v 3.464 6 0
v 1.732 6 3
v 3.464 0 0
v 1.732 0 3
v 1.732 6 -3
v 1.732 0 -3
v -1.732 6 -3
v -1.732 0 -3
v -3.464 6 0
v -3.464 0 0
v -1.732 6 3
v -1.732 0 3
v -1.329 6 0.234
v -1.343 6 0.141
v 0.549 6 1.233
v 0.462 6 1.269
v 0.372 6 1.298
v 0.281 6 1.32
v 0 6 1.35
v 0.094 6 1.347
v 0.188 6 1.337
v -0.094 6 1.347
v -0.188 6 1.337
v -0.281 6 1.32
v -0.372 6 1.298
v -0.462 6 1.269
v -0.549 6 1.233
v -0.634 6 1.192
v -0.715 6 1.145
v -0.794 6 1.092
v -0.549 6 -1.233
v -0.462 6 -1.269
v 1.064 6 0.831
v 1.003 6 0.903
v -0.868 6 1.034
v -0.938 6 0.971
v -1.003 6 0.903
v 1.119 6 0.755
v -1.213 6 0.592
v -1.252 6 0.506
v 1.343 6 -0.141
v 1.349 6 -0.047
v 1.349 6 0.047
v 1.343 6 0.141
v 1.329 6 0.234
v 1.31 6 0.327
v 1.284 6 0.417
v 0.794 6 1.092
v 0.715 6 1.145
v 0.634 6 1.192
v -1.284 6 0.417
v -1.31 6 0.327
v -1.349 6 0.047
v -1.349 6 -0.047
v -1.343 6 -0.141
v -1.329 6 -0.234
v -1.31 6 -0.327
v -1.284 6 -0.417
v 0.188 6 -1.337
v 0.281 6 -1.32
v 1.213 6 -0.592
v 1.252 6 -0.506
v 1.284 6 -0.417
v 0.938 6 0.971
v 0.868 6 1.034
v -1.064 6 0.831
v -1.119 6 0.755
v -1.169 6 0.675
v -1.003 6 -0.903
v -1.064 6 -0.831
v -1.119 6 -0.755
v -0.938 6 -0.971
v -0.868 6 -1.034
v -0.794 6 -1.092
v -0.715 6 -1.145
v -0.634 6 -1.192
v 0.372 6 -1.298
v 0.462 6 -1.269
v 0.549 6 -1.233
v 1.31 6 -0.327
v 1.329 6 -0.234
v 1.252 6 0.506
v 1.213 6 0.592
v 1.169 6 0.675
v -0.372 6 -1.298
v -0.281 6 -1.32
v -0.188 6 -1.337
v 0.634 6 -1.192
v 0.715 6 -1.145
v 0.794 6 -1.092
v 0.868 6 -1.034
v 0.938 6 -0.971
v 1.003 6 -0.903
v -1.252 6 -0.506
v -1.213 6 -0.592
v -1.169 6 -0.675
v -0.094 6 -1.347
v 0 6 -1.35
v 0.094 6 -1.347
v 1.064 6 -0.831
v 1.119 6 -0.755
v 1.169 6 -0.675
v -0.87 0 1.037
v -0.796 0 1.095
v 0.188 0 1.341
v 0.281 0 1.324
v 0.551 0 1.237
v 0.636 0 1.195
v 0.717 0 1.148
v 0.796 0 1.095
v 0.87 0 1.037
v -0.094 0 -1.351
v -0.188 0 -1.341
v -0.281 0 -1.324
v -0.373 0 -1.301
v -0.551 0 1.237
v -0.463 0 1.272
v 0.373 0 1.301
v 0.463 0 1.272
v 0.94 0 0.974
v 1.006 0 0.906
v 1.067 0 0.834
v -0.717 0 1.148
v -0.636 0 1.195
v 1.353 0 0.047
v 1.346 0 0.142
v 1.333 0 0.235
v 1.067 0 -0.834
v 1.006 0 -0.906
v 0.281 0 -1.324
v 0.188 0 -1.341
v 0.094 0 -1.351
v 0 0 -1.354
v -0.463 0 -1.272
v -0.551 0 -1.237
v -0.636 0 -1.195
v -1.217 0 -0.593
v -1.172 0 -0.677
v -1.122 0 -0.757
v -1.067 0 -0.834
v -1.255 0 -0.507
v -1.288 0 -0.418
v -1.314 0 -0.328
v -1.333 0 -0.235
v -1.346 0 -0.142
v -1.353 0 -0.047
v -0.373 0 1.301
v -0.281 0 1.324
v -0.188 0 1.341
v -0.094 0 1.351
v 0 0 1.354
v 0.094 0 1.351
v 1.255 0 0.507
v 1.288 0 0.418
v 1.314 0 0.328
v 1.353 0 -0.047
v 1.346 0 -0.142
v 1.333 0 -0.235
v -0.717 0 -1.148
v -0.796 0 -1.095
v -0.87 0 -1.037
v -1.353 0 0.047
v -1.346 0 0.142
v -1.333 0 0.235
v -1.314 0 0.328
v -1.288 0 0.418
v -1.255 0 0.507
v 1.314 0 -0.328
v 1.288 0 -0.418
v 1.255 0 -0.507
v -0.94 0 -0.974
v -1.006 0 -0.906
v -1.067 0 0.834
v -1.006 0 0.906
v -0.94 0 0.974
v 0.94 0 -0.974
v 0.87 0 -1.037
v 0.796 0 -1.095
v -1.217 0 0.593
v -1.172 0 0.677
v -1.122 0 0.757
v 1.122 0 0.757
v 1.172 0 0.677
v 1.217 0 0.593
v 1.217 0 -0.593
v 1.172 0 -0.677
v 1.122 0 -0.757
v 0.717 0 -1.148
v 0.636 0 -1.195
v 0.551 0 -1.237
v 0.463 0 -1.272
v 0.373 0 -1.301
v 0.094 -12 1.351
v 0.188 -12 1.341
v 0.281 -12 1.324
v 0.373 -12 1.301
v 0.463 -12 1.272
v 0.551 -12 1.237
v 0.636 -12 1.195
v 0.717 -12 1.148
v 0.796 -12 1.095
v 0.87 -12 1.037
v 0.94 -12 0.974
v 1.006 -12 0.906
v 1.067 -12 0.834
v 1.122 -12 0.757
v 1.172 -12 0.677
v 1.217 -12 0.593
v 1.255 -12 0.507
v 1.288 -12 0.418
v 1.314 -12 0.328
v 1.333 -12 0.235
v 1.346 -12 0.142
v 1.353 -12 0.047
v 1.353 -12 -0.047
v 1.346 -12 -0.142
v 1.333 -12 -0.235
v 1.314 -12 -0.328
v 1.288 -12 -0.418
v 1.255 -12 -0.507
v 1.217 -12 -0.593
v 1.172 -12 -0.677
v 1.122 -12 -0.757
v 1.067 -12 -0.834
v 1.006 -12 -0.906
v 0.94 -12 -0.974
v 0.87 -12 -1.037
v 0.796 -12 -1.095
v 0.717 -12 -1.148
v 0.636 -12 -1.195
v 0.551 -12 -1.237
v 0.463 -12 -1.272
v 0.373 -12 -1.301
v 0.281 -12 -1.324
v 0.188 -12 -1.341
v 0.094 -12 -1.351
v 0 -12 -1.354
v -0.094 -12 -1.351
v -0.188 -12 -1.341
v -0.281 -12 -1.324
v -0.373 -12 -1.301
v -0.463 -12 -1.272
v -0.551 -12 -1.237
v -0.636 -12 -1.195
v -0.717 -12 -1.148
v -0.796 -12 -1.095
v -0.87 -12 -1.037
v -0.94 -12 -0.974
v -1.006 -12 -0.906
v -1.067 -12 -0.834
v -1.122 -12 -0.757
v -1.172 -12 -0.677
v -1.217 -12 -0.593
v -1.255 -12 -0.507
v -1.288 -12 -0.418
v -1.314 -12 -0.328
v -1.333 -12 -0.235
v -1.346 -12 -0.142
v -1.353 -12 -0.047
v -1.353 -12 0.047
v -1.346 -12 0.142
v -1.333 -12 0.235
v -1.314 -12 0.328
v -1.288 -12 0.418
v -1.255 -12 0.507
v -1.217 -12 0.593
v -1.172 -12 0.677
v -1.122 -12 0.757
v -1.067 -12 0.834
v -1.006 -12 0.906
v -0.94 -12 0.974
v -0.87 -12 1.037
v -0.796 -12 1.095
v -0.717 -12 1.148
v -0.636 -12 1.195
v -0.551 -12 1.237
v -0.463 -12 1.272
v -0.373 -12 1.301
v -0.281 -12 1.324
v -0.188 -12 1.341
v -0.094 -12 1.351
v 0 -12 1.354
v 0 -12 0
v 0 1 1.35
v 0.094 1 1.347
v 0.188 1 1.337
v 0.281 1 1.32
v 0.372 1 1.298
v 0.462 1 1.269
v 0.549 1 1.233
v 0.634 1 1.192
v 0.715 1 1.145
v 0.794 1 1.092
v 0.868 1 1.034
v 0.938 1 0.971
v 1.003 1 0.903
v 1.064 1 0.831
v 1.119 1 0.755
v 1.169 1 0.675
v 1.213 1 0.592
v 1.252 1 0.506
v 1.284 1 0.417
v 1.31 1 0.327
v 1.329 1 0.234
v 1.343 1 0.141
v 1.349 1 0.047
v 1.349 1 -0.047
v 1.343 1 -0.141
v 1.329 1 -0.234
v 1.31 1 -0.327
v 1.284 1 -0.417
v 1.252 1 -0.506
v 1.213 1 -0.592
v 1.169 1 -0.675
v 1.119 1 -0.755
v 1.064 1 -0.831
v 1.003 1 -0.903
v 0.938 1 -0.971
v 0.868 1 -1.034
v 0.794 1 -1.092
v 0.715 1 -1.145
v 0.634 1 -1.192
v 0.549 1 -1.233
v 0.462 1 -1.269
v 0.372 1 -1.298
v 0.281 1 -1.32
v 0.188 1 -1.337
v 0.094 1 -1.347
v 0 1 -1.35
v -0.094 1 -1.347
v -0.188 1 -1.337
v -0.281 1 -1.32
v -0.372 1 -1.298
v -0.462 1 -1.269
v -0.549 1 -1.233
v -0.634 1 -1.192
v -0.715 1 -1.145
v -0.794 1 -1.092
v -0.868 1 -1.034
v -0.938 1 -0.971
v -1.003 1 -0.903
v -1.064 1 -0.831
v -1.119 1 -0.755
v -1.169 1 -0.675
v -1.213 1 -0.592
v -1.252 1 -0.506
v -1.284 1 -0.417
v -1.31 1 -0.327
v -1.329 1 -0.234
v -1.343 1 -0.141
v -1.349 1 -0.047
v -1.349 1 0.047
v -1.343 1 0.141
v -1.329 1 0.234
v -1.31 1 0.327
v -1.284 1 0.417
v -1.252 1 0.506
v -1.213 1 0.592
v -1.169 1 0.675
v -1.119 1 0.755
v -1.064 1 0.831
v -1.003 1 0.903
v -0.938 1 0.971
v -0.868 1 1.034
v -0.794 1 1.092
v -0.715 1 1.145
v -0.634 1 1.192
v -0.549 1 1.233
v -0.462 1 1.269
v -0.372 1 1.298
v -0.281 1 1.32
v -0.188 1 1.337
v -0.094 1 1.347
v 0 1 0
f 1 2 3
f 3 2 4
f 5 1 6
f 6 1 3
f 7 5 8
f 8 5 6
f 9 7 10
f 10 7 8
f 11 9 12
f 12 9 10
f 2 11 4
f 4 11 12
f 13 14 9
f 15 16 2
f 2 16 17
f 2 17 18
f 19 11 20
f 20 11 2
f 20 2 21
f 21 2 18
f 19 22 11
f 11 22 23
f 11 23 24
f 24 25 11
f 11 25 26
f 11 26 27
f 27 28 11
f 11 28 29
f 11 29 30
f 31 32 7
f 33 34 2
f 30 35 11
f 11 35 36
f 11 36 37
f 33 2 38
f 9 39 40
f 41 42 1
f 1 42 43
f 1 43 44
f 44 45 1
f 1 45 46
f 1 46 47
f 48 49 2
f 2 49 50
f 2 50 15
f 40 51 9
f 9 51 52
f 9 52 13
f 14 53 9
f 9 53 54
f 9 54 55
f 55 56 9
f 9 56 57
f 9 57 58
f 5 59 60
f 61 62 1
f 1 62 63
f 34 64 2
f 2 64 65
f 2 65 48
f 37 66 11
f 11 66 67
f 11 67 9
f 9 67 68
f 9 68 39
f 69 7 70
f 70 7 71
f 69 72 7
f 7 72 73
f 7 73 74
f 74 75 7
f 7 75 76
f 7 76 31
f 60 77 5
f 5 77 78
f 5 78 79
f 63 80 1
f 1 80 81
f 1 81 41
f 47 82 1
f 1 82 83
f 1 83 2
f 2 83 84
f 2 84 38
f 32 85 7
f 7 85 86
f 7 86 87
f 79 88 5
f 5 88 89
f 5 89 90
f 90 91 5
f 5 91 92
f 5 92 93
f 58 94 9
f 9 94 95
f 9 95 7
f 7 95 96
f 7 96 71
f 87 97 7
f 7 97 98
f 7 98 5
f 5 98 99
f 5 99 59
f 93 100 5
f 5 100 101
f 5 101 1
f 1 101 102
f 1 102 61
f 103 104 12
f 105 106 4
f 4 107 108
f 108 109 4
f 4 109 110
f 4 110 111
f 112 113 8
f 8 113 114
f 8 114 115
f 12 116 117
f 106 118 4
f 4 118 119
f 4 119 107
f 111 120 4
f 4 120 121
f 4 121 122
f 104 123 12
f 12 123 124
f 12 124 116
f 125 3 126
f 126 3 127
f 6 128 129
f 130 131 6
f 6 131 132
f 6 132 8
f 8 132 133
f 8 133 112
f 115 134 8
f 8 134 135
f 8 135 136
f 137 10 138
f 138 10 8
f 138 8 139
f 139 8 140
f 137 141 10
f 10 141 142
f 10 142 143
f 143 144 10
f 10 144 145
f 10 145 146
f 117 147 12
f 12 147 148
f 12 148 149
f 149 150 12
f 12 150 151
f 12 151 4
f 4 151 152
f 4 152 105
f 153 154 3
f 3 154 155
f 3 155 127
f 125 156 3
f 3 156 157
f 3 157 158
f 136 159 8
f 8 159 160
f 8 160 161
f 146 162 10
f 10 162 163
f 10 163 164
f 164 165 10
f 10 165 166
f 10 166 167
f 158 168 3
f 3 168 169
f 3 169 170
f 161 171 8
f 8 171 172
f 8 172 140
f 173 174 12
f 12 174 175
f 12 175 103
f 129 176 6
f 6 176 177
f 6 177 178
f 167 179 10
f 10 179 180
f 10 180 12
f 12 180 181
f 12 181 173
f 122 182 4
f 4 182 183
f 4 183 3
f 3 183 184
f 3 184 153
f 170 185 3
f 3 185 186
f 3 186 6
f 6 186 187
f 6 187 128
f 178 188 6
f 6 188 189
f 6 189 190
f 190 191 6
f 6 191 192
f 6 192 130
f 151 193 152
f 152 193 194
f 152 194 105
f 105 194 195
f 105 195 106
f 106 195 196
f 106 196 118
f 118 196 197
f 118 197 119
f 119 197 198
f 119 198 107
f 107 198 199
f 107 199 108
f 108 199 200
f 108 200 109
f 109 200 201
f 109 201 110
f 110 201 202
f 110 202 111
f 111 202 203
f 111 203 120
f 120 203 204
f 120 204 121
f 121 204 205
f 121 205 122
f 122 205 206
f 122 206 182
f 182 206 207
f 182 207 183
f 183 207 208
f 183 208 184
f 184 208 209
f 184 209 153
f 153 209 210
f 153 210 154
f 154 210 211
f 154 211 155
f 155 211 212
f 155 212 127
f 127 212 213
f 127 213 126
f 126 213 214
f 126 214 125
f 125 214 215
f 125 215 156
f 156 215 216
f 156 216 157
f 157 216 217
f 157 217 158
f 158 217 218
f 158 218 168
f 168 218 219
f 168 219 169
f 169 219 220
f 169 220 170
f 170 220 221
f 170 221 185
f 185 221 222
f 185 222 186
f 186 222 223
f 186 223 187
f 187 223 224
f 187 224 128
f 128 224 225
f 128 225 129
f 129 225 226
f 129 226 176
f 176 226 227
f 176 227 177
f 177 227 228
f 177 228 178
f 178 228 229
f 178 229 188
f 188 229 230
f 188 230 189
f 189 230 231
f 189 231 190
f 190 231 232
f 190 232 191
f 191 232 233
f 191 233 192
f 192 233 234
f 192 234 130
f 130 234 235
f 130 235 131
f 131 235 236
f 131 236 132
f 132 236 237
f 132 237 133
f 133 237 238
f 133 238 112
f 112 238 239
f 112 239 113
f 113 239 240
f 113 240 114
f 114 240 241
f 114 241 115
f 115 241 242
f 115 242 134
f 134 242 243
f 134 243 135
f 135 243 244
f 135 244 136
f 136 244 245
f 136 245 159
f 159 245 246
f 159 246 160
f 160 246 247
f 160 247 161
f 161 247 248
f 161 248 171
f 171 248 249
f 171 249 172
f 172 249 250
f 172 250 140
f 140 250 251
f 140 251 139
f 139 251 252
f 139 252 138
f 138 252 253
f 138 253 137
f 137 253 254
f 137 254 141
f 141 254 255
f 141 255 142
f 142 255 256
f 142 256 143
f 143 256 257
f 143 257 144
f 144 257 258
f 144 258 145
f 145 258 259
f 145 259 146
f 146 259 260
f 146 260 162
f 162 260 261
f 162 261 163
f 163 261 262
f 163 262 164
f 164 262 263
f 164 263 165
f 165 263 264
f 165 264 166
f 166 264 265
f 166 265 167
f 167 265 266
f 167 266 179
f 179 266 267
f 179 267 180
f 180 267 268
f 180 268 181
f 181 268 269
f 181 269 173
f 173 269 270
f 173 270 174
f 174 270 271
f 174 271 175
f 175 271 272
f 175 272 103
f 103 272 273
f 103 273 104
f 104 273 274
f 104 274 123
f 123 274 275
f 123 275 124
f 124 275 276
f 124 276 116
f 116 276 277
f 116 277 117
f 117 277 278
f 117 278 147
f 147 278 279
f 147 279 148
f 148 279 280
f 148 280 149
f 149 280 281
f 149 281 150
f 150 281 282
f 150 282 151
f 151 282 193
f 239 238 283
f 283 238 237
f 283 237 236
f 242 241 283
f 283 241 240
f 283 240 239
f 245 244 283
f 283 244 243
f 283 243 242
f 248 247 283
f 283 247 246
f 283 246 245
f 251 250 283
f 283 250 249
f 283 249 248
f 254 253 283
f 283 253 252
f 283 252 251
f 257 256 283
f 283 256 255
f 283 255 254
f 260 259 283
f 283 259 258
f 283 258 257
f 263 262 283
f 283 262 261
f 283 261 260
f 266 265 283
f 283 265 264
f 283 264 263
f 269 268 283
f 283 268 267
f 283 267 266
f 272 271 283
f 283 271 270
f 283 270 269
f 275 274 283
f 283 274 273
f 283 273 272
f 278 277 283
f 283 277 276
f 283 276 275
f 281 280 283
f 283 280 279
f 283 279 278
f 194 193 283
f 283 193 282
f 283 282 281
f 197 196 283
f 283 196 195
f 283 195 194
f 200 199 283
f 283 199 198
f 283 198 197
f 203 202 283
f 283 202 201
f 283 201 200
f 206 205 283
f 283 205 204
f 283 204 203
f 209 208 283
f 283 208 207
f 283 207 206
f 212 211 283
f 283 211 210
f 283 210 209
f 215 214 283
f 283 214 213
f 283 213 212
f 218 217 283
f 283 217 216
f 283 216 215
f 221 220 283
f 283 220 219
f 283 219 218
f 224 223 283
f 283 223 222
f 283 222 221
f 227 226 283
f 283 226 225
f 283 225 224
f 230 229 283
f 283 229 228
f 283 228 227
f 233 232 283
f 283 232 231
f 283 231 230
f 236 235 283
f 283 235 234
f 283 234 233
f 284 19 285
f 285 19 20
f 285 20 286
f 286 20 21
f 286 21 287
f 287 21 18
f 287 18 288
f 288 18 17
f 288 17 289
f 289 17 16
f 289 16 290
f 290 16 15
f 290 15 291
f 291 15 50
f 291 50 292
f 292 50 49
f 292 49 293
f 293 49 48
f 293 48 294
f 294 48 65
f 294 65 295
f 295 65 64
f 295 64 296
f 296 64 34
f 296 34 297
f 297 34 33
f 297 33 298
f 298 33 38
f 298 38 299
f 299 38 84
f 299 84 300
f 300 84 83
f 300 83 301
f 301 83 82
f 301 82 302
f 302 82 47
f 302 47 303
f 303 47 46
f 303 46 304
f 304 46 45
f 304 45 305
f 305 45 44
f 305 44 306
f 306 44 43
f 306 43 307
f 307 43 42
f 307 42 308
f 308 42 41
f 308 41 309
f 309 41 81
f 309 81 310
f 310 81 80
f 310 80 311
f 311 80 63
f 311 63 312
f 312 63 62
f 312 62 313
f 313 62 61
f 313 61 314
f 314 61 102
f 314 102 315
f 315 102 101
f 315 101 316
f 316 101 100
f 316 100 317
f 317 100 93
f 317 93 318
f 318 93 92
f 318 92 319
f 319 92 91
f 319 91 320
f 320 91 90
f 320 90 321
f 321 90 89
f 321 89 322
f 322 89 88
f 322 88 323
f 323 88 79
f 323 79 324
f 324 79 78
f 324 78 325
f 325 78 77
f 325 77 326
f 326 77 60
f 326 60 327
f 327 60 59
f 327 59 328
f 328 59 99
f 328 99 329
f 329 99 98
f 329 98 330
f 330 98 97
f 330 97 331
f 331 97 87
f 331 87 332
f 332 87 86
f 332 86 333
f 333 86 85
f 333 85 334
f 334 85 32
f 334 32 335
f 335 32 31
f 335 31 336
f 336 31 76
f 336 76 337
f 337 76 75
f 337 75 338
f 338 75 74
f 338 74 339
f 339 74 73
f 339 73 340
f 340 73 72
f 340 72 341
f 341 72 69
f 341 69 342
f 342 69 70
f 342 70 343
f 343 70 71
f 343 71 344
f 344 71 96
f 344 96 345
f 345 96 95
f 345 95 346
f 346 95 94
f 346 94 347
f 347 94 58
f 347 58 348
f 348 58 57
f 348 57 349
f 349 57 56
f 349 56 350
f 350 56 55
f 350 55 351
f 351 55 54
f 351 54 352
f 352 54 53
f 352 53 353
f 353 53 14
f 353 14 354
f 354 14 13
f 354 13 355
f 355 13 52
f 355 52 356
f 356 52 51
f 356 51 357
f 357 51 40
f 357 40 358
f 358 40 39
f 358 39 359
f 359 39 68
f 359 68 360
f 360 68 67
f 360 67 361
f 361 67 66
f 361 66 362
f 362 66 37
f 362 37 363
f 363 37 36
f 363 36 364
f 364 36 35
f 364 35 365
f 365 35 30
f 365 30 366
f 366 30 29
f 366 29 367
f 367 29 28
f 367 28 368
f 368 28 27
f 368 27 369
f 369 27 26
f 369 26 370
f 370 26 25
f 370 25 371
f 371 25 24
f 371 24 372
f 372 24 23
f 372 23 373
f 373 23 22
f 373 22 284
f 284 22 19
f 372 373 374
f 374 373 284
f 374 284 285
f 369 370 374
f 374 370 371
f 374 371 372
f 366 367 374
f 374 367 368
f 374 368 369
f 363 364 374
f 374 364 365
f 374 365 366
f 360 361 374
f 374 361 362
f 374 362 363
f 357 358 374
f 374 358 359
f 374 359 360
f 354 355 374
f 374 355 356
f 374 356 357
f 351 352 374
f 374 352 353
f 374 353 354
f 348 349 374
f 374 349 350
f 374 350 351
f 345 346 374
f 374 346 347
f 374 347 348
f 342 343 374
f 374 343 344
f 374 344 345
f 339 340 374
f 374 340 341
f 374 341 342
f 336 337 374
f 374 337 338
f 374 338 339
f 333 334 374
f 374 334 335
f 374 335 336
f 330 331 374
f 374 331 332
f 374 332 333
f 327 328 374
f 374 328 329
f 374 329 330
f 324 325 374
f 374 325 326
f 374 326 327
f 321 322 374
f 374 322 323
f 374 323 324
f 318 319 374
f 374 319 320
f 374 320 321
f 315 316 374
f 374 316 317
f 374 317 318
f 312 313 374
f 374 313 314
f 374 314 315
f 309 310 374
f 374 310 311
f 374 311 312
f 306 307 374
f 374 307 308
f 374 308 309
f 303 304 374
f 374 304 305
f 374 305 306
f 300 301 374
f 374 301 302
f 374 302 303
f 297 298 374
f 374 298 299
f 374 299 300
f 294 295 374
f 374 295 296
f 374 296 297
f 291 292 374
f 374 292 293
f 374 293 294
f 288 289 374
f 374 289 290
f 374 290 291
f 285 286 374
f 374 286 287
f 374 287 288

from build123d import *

# Parameters (mm, degrees)
BOSS_EXTRU_1_DEPTH      = 6
ESQUISSE2_R             = 1.353837959
BOSS_EXTRU_2_DEPTH      = 12
ESQUISSE3_R             = 1.35
ENL_V_MAT_EXTRU_1_DEPTH = 5


with BuildPart() as part:
    # Esquisse1 → Boss.-Extru.1 (new body)
    with BuildSketch(Plane(origin=(0, 0, 0), x_dir=(1, 0, 0), z_dir=(0, 1, 0))):
        Polygon((3.464101615, 0), (1.732050808, 3), (-1.732050808, 3), (-3.464101615, 0), (-1.732050808, -3), (1.732050808, -3), align=None)
    extrude(amount=BOSS_EXTRU_1_DEPTH)

    # Esquisse2 → Boss.-Extru.2 (add)
    with BuildSketch(Plane.XZ):
        with Locations(Location((0, 0, 0), (0, 0, 90))):
            Circle(ESQUISSE2_R)
    extrude(amount=BOSS_EXTRU_2_DEPTH)

    # Esquisse3 → Enlèv. mat.-Extru.1 (cut)
    with BuildSketch(Plane(origin=(0, 6, 0), x_dir=(1, 0, 0), z_dir=(0, 1, 0))):
        with Locations(Location((0, 0, 0), (0, 0, 270))):
            Circle(ESQUISSE3_R)
    extrude(amount=-ENL_V_MAT_EXTRU_1_DEPTH, mode=Mode.SUBTRACT)


solid = part.part
